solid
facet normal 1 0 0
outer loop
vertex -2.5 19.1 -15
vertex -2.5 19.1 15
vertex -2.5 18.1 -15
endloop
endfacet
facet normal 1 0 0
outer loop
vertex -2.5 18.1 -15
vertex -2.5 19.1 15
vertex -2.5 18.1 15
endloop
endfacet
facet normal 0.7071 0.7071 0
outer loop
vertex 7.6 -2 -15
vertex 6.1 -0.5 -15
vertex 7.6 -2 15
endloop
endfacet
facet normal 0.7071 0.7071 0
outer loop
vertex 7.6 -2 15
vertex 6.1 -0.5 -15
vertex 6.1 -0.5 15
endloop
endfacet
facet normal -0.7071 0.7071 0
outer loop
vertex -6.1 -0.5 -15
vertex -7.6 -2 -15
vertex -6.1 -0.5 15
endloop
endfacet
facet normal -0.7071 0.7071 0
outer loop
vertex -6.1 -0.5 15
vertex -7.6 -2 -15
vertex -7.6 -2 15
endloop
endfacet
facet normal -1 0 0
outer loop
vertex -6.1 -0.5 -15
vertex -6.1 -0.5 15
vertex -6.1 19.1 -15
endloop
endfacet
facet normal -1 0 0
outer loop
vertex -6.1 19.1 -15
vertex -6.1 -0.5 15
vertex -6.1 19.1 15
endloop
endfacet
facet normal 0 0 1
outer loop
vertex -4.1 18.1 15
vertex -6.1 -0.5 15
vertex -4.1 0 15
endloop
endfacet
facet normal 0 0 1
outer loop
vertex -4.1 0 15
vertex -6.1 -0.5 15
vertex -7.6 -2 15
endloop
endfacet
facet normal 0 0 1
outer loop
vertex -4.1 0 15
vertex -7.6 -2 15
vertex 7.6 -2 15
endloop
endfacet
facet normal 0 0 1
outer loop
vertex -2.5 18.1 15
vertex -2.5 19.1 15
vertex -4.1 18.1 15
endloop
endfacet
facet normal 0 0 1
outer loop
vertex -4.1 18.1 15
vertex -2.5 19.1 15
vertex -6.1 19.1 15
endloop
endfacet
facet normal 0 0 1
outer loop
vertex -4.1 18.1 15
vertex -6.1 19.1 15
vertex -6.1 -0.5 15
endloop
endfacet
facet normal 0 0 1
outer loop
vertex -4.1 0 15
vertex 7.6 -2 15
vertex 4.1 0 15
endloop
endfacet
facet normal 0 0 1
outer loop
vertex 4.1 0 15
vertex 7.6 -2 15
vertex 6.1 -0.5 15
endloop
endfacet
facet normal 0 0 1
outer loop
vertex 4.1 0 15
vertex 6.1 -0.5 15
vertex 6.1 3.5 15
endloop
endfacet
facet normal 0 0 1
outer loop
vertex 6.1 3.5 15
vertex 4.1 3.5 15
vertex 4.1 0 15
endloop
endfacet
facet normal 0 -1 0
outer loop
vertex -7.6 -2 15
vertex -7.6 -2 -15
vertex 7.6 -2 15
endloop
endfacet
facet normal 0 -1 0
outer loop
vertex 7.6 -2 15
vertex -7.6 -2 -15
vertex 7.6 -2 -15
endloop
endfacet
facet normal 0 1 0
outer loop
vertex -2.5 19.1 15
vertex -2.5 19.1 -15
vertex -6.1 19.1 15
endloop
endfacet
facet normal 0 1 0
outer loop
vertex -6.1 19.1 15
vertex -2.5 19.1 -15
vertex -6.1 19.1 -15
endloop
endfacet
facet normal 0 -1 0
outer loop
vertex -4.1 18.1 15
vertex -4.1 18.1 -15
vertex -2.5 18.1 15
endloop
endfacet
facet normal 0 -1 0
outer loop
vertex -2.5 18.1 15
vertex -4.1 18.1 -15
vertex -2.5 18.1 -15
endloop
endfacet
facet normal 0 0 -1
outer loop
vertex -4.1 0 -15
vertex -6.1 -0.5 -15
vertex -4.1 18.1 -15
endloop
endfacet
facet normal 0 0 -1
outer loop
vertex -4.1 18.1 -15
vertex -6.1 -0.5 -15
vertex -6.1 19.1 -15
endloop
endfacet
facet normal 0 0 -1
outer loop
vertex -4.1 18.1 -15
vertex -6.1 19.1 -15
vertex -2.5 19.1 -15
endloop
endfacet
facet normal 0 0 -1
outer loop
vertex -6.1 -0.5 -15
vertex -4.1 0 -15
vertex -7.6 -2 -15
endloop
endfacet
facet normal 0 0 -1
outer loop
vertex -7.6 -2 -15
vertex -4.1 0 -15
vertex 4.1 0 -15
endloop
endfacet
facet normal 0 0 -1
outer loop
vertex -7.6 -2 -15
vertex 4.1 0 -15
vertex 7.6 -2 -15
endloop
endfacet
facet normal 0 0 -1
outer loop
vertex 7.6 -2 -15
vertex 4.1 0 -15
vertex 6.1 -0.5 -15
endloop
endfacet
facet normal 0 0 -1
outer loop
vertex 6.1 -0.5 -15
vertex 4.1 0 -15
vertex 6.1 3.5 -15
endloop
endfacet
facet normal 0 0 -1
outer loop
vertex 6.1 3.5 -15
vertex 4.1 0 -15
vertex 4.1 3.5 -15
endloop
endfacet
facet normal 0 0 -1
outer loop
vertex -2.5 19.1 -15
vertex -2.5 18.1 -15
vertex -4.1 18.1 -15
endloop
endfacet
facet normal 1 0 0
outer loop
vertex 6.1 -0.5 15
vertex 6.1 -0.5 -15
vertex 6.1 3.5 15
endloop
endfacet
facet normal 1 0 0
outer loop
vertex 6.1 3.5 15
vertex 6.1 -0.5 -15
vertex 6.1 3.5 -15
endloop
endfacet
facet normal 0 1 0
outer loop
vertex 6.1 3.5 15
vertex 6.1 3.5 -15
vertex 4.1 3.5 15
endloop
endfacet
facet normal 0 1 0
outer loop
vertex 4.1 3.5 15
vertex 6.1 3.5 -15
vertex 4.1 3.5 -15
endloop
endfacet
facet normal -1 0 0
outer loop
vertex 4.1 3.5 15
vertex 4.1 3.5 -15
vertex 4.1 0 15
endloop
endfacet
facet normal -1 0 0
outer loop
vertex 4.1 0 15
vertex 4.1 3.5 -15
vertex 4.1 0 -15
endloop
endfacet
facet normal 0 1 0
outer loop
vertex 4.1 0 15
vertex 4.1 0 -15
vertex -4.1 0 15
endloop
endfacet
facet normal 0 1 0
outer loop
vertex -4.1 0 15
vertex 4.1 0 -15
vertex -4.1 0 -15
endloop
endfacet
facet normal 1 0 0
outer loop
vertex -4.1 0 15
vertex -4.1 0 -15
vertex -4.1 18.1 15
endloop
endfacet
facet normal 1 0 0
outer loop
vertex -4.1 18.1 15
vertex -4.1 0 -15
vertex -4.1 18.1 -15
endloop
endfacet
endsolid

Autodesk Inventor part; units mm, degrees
ref_plane "YZ Plane" through (0, 0, 0) normal (1, 0, 0) x (0, 1, 0)
ref_plane "XZ Plane" through (0, 0, 0) normal (0, 1, 0) x (-1, 0, 0)
ref_plane "XY Plane" through (0, 0, 0) normal (0, 0, 1) x (1, 0, 0)
sketch "Skizze1" plane through (0, 0, 0) normal (0, 1, 0) x (-1, 0, 0)
  line L0 (4.1, 15) -> (-4.1, 15)
  line L1 (-4.1, 15) -> (-4.1, -15)
  line L2 (-4.1, -15) -> (4.1, -15)
  line L3 (4.1, -15) -> (4.1, 15)
  line L4 (4.1, 15) -> (-4.1, -15) construction
  line L5 (-4.1, 15) -> (4.1, -15) construction
  line L6 (6.1, 17) -> (-6.1, 17)
  line L7 (-6.1, 17) -> (-6.1, -17)
  line L8 (-6.1, -17) -> (6.1, -17)
  line L9 (6.1, -17) -> (6.1, 17)
  line L10 (6.1, 17) -> (-6.1, -17) construction
  line L11 (-6.1, 17) -> (6.1, -17) construction
  point P0 (0, 0)
  dimension "d0" = 8.2
  dimension "d1" = 30
  dimension "d2" = 12.2
  dimension "d3" = 34
extrude "Extrusion1" add sketch "Skizze1" along normal blind 18.1
sketch "Skizze2" plane through (0, 0, 0) normal (0, -1, 0) x (1, 0, 0)
  line L0 (6.1, 17) -> (6.1, -17) projected
  line L1 (-6.1, 17) -> (6.1, 17) projected
  line L2 (-6.1, -17) -> (-6.1, 17) projected
  line L3 (6.1, -17) -> (-6.1, -17) projected
  line L4 (-4.1, 15) -> (-4.1, -15) projected
  line L5 (4.1, 15) -> (-4.1, 15) projected
  line L6 (4.1, -15) -> (4.1, 15) projected
  line L7 (-4.1, -15) -> (4.1, -15) projected
  point P0 (0, 0)
extrude "Extrusion2" add sketch "Skizze2" along normal blind 2 contours L0 L3 L2 L1 | L5 L6 L7 L4
sketch "Skizze3" plane through (6.1, 18.1, 17) normal (1, 0, 0) x (0, 0, -1)
  line L0 (2, -18.1) -> (32, -18.1) projected
  line L1 (32, -18.1) -> (32, 0) projected
  line L2 (2, 0) -> (32, 0) projected
  line L3 (2, -18.1) -> (2, 0) projected
  line L4 (32, -18.1) -> (32, 0) projected
  line L5 (2, -18.1) -> (32, -18.1)
  line L6 (32, -18.1) -> (32, -14.6)
  line L7 (32, -14.6) -> (2, -14.6)
  line L8 (2, -14.6) -> (2, -18.1)
  point P0 (17, -18.1)
  point P1 (2, -14.6)
  dimension "d8" = 3.5
extrude "Extrusion3" cut sketch "Skizze3" against normal up to surface (2 mm away) contours L3 L2 L1 L7
sketch "Skizze4" plane through (0, 18.1, 0) normal (0, 1, 0) x (1, 0, 0)
  line L0 (-4.1, -15) -> (-4.1, 15) projected
  line L1 (4.1, -15) -> (-4.1, -15) projected
  line L2 (-4.1, 15) -> (-3.5, 15)
  line L3 (-3.5, 15) -> (-3.5, -15)
  line L4 (-3.5, -15) -> (-4.1, -15)
  line L5 (-4.1, -15) -> (-4.1, 15)
  line L6 (-3.5, 15) -> (-2.9, 15)
  line L7 (-2.9, 15) -> (-2.9, -15)
  line L8 (-2.9, -15) -> (-3.5, -15)
  line L9 (-3.5, -15) -> (-3.5, 15)
  line L10 (-6.1, 17) -> (6.1, 17) projected
  line L11 (-6.1, -17) -> (6.1, -17) projected
  line L12 (-6.1, 17) -> (-2.9, 17)
  line L13 (-2.9, 17) -> (-2.9, -17)
  line L14 (-2.9, -17) -> (-6.1, -17)
  line L15 (-6.1, -17) -> (-6.1, 17)
  point P0 (0, 0)
  dimension "d11" = 0.6
  dimension "d12" = 0.6
extrude "Extrusion4" add sketch "Skizze4" along normal blind 1
sketch "Skizze6" plane through (-4.1, 0, -15) normal (0, 0, 1) x (1, 0, 0)
  line L0 (10.2, -2) -> (10.2, 18.1) projected
  line L1 (0, 0) -> (0, 18.1) projected
  line L2 (10.2, 18.1) -> (0, 18.1)
  line L3 (0, 18.1) -> (0, 3.5)
  line L4 (0, 3.5) -> (10.2, 3.5)
  line L5 (10.2, 3.5) -> (10.2, 18.1)
  point P0 (4.1, 0)
  dimension "d30" = 14.6
extrude "Extrusion6" cut sketch "Skizze6" against normal through all
mirror "Spiegeln1" about plane through (0, 0, 0) normal (0, 0, 1) of "Extrusion6"
sketch "Skizze7" plane through (-4.1, 0, -15) normal (0, 0, 1) x (1, 0, 0)
  line L0 (8.2, 3.5) -> (0, 3.5) projected
  line L1 (0, 0) -> (0, 3.5) projected
  line L2 (0, 0) -> (8.2, 0) projected
  line L3 (8.2, 0) -> (8.2, 3.5) projected
  point P0 (4.1, 0)
extrude "Extrusion7" cut sketch "Skizze7" along normal through all both and the other way through all
sketch "Skizze8" plane through (6.1, -2, -17) normal (0, 0, -1) x (-1, 0, 0)
  line L0 (2, 2) -> (2, 5.5) projected
  line L1 (2, 5.5) -> (0, 5.5) projected
  line L2 (0, 0) -> (0, 5.5) projected
  line L3 (12.2, 0) -> (0, 0) projected
  line L4 (12.2, 0) -> (12.2, 21.1) projected
  line L5 (9, 21.1) -> (12.2, 21.1) projected
  line L6 (9, 20.1) -> (9, 21.1) projected
  line L7 (9, 20.1) -> (10.2, 20.1) projected
  line L8 (10.2, 20.1) -> (10.2, 2) projected
  line L9 (10.2, 2) -> (2, 2) projected
  point P0 (6.1, 2)
extrude "Extrusion8" cut sketch "Skizze8" against normal blind 2
mirror "Spiegeln2" about plane through (0, 0, 0) normal (0, 0, 1) of "Extrusion8"
sketch "Skizze10" plane through (-6.1, -2, 15) normal (0, 0, 1) x (1, 0, 0)
  line L0 (12.2, 0) -> (0, 0) projected
  line L1 (0, 0) -> (-1.5, 0)
  line L2 (-1.5, 0) -> (-1.5, 1.5)
  line L3 (-1.5, 1.5) -> (0, 1.5)
  line L4 (0, 1.5) -> (0, 0)
  line L5 (12.2, 0) -> (13.7, 0)
  line L6 (13.7, 0) -> (13.7, 1.5)
  line L7 (13.7, 1.5) -> (12.2, 1.5)
  line L8 (12.2, 1.5) -> (12.2, 0)
  line L9 (0, 1.5) -> (-1.5, 0)
  line L10 (12.2, 1.5) -> (13.7, 0)
  point P0 (6.1, 2)
  dimension "d44" = 1.5
  dimension "d45" = 1.5
  dimension "d46" = 1.5
  dimension "d47" = 1.5
extrude "Extrusion10" add sketch "Skizze10" against normal up to surface (30 mm away) contours L1 L9 L4 | L8 L10 L5
sketch "Skizze11" plane through (-2.9, 18.1, -15) normal (1, 0, 0) x (0, 0, -1)
  line L0 (-30, 1) -> (-30, 0) projected
  line L1 (0, 0) -> (-30, 0) projected
  line L2 (0, 0) -> (0, 1) projected
  line L3 (-30, 1) -> (0, 1) projected
  point P0 (-15, -18.1)
extrude "Extrusion11" add sketch "Skizze11" along normal blind 0.4
properties part number "WagoHolder"
